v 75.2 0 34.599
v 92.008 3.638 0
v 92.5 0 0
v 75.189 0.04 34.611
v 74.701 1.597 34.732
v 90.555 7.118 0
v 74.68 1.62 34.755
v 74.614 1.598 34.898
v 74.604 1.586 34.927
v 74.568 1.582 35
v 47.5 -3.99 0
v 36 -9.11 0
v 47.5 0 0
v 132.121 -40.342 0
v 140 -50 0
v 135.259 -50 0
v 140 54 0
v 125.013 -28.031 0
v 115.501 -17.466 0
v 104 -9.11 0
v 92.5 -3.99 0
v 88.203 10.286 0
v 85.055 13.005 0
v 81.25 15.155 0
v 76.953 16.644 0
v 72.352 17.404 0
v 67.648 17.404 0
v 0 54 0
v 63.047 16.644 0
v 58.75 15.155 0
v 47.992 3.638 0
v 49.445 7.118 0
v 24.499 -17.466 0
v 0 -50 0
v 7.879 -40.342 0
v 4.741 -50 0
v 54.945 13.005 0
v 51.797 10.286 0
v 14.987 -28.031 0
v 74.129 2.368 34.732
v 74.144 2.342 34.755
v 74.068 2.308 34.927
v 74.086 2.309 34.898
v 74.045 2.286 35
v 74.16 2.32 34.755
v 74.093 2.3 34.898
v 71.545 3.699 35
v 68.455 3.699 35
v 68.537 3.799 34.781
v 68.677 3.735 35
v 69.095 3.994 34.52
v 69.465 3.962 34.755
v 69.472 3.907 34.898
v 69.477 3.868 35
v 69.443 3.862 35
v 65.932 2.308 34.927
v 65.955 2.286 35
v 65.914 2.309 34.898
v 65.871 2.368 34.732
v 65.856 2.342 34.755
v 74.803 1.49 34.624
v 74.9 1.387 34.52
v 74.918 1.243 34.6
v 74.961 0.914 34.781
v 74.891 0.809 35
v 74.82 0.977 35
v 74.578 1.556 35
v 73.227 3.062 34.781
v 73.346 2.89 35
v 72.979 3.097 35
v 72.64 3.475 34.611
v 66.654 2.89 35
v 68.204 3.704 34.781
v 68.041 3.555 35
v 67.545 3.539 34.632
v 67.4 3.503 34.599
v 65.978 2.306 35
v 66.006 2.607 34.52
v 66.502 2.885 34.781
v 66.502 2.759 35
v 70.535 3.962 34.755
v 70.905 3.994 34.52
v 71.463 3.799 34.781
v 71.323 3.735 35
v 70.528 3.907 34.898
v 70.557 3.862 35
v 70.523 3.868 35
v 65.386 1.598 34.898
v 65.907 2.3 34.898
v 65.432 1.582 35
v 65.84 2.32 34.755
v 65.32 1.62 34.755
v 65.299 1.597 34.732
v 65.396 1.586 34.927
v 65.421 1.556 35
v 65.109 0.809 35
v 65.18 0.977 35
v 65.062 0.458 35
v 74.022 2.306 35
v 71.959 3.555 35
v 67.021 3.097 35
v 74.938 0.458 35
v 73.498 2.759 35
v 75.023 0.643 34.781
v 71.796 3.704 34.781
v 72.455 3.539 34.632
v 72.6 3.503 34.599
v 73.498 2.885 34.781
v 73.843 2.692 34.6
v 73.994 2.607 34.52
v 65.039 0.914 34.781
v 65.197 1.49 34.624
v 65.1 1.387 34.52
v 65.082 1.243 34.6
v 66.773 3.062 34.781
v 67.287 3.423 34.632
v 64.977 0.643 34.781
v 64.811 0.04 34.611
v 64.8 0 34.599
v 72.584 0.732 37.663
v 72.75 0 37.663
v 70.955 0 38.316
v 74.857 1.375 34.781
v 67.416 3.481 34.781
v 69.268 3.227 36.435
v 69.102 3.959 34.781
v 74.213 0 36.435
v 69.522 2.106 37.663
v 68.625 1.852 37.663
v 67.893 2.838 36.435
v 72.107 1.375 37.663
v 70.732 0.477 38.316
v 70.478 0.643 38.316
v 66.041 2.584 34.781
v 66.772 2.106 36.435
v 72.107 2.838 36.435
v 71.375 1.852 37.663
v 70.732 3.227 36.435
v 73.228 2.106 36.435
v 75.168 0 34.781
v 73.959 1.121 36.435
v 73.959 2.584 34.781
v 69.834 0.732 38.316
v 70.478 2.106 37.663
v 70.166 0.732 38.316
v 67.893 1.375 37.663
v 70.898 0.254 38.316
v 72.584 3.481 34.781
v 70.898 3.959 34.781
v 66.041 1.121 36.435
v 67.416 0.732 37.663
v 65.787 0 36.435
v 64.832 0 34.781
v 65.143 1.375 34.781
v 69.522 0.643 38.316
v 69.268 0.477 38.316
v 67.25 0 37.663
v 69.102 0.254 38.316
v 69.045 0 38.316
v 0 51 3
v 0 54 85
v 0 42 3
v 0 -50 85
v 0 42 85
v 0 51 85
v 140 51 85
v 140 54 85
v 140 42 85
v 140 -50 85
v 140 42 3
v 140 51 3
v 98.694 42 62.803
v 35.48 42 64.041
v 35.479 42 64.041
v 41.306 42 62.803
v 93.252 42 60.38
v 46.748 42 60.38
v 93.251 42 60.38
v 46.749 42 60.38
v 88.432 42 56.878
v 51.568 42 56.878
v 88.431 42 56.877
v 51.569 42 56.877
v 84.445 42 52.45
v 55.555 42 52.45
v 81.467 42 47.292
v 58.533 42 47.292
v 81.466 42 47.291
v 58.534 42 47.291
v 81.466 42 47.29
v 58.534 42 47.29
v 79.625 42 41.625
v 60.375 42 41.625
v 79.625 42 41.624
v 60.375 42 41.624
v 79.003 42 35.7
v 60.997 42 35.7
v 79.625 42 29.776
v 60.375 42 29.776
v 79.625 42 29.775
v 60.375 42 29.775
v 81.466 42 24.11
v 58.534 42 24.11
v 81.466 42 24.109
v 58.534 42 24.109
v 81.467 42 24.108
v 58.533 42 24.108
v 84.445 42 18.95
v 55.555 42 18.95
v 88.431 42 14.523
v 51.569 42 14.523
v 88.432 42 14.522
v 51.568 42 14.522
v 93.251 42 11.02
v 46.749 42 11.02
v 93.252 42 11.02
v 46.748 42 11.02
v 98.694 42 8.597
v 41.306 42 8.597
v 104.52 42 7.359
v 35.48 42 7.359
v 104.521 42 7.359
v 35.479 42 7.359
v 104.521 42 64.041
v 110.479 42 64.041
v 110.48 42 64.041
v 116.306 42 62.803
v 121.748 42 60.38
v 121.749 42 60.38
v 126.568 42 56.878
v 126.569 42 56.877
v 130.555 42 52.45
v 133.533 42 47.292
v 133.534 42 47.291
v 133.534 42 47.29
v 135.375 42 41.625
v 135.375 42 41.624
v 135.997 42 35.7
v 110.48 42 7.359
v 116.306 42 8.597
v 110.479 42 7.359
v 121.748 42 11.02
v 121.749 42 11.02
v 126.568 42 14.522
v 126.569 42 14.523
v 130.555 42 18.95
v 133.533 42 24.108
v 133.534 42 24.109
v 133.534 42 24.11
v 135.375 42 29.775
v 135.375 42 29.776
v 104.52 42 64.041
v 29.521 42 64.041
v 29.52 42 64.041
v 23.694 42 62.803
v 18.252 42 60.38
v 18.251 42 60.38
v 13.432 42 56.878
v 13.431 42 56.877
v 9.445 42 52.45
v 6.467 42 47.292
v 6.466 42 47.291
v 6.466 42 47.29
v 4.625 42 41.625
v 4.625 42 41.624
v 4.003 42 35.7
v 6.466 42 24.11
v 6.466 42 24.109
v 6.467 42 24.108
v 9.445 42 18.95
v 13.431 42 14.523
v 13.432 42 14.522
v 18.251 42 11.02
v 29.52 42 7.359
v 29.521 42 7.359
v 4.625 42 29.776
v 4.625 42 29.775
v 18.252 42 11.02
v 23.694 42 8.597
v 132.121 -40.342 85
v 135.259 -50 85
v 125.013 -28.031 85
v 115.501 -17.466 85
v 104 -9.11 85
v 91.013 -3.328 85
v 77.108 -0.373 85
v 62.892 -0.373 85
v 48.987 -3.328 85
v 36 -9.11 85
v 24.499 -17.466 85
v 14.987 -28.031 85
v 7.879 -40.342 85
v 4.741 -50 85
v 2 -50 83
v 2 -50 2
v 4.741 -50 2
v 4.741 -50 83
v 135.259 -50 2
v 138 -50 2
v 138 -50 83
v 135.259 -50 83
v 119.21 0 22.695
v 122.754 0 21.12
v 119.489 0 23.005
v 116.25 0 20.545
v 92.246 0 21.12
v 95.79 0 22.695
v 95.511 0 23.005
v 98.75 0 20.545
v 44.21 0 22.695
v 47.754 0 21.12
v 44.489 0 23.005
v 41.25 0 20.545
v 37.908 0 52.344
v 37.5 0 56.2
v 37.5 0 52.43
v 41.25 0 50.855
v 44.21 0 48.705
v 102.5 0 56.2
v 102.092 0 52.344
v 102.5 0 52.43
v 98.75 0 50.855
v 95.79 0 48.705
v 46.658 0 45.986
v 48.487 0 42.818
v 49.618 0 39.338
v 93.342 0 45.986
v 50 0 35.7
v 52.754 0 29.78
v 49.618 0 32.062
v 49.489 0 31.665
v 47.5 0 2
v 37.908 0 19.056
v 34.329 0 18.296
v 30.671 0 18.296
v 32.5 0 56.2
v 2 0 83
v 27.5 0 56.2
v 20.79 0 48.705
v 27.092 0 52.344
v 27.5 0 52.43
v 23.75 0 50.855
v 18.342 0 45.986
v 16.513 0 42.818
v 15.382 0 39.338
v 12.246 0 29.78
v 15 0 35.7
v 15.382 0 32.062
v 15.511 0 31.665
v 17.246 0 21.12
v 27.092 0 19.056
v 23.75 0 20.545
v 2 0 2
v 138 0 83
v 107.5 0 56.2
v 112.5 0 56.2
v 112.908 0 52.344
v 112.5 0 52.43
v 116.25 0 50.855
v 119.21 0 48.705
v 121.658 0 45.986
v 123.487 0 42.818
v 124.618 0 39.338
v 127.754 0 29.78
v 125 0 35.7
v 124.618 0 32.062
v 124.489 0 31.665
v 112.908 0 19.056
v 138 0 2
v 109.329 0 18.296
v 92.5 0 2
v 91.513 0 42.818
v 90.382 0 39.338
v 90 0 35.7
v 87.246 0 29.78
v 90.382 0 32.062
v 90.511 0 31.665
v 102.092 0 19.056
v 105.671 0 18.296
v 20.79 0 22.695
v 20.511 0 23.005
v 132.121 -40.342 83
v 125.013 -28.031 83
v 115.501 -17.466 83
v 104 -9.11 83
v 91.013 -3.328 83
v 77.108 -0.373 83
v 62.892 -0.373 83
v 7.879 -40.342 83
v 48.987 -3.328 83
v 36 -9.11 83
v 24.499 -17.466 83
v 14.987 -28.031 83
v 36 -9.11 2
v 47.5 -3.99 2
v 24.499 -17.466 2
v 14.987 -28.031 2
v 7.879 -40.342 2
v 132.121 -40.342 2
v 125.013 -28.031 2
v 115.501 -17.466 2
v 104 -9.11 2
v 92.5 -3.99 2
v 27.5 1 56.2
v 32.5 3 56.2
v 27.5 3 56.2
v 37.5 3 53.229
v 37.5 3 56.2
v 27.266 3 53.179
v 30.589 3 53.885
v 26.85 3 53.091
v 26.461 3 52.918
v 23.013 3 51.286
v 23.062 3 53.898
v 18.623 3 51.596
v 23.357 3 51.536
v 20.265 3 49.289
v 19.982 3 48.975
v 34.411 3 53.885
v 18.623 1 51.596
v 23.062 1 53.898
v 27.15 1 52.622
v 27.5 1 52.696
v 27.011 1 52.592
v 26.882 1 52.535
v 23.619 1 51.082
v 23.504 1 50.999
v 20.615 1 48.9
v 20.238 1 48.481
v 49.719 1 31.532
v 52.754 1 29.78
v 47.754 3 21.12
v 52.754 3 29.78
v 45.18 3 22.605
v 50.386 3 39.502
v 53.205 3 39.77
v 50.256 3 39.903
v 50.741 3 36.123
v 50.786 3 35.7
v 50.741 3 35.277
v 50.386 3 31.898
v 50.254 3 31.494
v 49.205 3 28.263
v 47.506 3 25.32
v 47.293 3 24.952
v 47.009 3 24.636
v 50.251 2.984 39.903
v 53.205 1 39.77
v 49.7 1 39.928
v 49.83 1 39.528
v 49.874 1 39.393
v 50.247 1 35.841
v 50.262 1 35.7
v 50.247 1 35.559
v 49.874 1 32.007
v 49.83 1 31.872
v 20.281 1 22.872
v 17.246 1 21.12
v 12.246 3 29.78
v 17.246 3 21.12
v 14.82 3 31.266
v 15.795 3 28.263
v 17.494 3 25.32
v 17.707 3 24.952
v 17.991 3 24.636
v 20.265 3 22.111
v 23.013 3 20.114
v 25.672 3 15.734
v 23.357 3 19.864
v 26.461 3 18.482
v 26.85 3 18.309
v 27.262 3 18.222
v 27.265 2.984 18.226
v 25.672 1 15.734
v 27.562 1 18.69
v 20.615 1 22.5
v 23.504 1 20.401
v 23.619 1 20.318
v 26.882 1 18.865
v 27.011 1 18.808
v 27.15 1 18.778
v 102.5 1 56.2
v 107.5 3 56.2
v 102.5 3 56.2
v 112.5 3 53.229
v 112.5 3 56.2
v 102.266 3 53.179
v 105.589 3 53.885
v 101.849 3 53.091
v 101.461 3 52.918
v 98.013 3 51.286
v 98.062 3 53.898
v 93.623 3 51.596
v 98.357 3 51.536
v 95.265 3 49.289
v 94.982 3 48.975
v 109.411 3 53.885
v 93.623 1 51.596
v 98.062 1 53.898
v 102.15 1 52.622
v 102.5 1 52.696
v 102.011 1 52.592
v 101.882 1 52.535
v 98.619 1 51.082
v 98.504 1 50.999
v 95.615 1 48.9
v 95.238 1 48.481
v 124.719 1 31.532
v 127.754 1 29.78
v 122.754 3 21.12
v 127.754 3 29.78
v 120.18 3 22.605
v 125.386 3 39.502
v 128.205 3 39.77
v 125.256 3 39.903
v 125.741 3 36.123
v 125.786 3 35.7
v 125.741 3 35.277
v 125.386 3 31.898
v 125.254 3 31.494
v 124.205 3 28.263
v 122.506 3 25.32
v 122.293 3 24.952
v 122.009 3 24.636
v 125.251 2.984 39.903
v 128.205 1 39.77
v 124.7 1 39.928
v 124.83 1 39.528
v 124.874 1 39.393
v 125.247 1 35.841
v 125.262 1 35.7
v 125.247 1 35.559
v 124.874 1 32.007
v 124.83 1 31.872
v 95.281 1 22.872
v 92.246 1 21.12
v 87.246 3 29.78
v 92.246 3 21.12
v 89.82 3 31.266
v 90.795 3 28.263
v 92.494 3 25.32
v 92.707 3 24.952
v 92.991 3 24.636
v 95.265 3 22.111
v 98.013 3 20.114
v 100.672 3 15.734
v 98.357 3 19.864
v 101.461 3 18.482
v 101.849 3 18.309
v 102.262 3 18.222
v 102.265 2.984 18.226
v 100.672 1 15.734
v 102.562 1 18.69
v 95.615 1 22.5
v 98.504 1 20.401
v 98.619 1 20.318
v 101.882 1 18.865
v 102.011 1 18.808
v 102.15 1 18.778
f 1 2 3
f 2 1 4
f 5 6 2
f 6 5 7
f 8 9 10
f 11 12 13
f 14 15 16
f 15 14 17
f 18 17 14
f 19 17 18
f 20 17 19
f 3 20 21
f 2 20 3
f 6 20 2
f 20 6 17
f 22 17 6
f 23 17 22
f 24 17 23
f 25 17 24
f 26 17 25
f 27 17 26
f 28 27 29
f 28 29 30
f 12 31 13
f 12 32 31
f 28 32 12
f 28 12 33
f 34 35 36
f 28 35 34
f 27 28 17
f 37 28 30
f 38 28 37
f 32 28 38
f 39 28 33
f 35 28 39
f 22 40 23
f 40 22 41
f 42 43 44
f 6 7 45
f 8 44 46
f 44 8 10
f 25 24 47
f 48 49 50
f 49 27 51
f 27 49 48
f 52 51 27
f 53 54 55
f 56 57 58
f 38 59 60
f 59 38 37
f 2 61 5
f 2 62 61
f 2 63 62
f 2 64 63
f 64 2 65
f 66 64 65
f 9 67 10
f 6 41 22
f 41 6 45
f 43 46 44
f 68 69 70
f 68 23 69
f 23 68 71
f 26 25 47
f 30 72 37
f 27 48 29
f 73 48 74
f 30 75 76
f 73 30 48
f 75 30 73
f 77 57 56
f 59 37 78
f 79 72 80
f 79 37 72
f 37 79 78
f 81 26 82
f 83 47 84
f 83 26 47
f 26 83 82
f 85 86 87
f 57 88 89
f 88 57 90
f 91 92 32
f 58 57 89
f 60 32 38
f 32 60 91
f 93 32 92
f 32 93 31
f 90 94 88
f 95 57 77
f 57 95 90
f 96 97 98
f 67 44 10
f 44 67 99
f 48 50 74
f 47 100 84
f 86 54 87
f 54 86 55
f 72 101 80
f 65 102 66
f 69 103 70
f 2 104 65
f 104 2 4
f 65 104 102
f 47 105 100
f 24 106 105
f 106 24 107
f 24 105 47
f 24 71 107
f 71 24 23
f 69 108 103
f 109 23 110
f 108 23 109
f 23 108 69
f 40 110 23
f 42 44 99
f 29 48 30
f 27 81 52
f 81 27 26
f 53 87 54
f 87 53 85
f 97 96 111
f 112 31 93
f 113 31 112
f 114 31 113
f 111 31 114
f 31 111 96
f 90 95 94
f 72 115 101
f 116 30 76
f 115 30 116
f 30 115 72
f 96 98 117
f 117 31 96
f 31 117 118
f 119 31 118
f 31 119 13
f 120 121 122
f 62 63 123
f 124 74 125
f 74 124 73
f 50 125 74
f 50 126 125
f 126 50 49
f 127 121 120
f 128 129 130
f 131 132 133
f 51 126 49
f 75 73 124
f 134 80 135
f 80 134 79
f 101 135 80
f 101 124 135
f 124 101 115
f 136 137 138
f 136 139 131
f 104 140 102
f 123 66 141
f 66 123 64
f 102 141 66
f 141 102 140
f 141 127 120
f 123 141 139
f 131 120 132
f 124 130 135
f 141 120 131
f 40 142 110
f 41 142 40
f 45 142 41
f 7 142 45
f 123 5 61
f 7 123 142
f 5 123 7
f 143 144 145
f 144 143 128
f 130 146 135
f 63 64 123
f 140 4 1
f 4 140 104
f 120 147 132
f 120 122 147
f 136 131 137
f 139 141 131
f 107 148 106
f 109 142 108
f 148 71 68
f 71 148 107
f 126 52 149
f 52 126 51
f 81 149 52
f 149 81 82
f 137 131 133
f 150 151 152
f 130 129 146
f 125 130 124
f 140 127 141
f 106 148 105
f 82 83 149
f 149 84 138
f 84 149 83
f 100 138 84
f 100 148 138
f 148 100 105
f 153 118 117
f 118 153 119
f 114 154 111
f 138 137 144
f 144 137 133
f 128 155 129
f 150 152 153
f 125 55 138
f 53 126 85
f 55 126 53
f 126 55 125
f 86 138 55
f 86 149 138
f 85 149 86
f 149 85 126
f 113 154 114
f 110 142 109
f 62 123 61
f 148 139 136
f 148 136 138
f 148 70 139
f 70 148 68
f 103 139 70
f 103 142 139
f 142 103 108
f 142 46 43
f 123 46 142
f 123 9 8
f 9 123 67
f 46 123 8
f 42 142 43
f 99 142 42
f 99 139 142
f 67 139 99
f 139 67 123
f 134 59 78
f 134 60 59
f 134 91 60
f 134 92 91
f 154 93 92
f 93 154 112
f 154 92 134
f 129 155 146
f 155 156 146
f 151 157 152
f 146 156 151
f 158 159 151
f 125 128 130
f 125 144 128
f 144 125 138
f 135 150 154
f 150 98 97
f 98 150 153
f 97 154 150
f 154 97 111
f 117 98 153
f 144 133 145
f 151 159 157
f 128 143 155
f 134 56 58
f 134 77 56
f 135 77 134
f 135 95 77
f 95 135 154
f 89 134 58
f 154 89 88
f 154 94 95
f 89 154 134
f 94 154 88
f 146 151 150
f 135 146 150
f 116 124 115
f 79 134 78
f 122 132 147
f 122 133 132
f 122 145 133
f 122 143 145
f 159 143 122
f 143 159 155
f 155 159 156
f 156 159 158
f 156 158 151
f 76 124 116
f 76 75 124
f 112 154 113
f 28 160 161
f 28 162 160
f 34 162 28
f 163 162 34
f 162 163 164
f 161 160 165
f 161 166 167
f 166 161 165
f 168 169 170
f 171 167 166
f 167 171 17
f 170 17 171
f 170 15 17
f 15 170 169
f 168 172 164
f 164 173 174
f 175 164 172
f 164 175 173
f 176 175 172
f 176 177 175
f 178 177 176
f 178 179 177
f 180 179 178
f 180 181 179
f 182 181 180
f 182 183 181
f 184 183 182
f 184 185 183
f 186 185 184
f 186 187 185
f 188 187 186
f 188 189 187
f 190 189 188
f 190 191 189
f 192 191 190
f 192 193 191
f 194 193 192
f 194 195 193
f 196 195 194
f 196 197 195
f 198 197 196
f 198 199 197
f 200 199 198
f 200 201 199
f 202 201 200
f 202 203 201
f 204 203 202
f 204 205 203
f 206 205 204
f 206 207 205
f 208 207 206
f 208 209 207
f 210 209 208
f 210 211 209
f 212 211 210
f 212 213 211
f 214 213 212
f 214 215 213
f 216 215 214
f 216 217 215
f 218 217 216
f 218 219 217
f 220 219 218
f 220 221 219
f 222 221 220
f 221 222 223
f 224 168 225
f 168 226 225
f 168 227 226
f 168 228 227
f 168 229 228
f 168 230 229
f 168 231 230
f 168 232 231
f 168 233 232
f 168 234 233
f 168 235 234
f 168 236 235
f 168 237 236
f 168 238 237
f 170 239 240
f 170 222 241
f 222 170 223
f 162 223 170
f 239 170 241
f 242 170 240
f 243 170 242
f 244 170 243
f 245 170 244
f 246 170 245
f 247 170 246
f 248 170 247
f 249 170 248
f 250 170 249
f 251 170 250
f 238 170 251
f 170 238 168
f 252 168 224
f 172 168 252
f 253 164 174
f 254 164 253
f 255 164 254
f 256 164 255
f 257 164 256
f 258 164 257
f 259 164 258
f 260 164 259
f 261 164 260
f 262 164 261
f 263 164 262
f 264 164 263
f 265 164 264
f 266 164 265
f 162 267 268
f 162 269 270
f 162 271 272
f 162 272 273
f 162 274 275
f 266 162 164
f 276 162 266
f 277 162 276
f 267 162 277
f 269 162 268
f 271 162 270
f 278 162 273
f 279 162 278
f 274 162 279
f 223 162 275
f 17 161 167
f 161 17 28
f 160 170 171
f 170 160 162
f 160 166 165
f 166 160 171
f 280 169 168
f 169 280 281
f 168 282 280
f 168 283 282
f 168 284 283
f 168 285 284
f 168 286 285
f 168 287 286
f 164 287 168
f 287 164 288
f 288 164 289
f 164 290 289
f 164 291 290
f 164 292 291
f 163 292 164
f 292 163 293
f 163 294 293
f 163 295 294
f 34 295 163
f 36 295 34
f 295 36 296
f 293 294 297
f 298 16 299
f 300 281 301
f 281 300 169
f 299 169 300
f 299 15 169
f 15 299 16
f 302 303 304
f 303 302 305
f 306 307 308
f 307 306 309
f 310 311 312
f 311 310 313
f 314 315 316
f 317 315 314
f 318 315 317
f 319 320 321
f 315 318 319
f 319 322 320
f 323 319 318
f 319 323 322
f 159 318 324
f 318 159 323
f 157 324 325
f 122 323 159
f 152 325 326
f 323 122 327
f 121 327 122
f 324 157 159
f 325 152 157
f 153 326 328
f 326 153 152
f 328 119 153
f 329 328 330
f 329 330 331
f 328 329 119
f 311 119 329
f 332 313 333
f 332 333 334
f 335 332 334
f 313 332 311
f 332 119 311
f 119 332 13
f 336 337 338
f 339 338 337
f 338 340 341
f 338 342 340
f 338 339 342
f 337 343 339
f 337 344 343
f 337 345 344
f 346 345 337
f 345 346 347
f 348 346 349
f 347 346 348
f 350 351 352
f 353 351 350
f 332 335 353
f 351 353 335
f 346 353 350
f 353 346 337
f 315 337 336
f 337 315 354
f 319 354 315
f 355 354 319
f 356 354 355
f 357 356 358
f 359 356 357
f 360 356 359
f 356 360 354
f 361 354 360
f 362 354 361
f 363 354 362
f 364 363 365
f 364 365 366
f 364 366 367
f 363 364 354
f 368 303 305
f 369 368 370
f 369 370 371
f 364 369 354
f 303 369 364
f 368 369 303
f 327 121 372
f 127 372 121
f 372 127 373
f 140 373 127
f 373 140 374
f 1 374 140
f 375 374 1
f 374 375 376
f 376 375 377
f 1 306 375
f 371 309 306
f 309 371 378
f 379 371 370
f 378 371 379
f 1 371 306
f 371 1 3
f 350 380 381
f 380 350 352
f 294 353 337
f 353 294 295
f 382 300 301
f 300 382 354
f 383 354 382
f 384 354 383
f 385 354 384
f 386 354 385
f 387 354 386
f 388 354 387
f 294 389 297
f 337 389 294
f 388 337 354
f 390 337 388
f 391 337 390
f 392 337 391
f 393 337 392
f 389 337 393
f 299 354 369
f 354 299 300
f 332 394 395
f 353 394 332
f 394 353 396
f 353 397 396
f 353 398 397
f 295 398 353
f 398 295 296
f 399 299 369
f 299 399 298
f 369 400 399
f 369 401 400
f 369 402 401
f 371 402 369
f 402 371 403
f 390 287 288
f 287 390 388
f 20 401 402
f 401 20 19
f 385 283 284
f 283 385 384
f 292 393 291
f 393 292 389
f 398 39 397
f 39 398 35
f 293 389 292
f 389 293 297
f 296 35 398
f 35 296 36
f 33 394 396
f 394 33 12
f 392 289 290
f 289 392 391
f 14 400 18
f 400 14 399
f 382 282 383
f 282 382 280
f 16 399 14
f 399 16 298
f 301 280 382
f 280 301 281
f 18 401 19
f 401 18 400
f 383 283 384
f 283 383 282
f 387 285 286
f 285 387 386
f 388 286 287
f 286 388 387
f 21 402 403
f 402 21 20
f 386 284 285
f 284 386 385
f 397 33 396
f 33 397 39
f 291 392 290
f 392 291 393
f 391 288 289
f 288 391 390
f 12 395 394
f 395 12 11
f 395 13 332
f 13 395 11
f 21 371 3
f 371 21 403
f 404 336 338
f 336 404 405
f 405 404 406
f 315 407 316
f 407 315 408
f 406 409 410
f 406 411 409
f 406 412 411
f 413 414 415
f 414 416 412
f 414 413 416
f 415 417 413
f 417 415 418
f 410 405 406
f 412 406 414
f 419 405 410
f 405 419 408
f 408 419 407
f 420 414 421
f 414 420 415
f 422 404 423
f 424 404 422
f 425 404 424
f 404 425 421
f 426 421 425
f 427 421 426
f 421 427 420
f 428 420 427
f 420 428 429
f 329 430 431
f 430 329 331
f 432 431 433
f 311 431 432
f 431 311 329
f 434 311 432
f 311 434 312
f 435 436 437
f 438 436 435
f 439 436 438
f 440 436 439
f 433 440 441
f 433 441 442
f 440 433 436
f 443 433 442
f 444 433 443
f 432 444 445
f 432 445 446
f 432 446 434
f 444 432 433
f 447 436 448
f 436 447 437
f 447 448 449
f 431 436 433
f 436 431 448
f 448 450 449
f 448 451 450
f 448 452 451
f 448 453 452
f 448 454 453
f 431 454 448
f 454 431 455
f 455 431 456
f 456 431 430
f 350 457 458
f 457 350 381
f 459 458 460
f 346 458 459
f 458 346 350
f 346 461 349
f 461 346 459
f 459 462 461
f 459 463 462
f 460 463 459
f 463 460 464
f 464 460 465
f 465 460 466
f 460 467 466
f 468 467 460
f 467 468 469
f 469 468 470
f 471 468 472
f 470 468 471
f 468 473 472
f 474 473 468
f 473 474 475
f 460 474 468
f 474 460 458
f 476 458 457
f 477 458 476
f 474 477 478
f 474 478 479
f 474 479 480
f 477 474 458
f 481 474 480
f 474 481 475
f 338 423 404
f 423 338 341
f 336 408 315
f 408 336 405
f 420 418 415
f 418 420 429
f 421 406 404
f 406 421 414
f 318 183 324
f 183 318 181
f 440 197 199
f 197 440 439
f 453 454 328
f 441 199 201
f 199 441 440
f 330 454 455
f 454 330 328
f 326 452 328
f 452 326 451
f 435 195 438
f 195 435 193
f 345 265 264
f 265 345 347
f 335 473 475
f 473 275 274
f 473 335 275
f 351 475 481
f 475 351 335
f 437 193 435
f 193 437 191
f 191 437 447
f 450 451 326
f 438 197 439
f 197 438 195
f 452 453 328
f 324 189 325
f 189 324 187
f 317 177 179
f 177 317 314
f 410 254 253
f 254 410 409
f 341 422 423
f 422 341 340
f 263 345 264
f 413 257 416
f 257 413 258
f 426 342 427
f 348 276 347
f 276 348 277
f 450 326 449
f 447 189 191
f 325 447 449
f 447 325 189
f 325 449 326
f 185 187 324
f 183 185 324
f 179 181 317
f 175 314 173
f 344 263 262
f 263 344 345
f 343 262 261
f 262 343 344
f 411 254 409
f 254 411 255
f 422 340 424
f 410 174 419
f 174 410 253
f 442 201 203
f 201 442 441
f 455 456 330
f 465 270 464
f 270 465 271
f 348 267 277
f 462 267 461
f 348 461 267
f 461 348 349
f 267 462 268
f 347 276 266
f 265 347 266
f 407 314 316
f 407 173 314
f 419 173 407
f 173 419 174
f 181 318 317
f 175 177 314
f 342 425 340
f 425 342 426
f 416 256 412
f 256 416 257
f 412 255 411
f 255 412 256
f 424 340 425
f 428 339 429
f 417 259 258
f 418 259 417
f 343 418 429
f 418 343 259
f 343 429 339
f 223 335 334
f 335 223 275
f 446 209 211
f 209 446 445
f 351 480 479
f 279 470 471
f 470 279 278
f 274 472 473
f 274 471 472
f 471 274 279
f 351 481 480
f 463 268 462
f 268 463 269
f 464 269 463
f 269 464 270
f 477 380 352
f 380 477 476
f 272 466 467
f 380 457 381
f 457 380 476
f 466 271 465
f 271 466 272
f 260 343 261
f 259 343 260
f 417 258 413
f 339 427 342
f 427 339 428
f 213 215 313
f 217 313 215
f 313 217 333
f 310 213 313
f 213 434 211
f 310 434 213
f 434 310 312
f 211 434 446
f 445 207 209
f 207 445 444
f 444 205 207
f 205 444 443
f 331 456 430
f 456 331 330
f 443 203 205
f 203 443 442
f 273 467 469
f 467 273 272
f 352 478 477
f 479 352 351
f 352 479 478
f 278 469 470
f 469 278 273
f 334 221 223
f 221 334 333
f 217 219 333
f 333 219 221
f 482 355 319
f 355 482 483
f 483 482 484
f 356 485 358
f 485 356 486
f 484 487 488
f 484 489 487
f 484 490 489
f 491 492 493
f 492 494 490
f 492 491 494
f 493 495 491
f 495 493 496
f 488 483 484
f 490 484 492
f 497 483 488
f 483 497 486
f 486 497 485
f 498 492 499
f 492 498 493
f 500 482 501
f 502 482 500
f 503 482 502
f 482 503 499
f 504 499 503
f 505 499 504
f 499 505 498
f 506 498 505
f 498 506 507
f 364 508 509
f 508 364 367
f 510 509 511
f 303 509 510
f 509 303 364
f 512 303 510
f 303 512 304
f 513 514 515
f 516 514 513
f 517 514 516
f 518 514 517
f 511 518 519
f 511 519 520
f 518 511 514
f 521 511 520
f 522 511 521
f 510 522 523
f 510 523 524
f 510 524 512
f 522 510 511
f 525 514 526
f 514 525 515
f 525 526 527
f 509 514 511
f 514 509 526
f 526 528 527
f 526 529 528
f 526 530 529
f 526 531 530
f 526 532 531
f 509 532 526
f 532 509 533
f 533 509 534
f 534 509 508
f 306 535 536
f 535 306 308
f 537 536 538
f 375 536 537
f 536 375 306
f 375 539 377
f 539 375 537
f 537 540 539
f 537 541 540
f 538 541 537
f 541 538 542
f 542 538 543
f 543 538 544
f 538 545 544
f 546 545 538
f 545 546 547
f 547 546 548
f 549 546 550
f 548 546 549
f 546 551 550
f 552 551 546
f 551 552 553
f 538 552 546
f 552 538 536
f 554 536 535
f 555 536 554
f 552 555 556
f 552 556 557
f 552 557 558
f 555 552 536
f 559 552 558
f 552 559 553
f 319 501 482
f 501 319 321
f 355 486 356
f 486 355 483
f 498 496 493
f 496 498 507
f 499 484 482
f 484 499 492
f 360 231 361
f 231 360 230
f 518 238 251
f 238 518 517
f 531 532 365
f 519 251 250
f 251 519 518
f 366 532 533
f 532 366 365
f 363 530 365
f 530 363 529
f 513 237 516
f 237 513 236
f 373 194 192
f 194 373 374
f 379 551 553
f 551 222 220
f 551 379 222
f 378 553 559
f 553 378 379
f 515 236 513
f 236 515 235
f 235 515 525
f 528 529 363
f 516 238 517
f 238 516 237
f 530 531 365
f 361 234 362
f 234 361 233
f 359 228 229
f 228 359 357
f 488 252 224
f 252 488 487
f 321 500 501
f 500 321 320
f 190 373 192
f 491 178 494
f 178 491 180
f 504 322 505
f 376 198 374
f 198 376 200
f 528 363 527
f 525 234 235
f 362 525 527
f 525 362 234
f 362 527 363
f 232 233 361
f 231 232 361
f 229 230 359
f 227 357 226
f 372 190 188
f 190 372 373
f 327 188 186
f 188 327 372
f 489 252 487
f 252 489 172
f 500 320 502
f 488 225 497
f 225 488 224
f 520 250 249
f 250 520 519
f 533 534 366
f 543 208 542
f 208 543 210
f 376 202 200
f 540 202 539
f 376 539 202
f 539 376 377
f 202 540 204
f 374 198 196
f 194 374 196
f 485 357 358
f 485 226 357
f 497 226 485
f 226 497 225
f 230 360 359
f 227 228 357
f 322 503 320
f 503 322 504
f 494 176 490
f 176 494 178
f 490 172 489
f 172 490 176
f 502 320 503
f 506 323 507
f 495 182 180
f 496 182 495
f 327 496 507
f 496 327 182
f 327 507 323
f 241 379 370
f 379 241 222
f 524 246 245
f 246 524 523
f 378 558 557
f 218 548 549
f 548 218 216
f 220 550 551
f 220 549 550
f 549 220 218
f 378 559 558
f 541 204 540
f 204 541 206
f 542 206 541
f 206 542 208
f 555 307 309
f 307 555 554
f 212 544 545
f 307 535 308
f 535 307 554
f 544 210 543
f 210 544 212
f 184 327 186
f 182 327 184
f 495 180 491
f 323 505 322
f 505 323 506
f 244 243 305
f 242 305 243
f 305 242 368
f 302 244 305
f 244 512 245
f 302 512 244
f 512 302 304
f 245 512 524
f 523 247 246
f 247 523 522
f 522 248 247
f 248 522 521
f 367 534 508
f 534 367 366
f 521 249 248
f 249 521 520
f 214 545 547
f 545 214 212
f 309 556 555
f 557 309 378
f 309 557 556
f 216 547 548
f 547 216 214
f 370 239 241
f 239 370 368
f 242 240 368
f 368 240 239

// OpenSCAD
/****************************************
 * Generate VR Headset for Mobile Phone *
 ****************************************/

// TODO: Add mechanism to press against the phone screen for the primary trigger.

/*******************************
 *   Adjustable Measurements   *
 *                             *
 * All measurements are in mm. *
 *******************************/

// Overall case size
CaseSize = [140, 42, 85];

// Interpupillary Distance
IPD = 75;

// Diameter of the lenses at the eyes
LensDiameter = 35;

// Diameter of the area of the screen 
// that will be viewed
ViewDiameterAtPhone = 57;

// Percentage of the total case height
// from the bottom that indicates
// where the center of the lenses are.
// (ie. .5 would be exactly in the middle)
LensVerticalOffsetPercentage = .42;

// Width, Thickness, and Height of the 
// protrusions on the lens that latch onto the frame.
LensFlangeDimensions = [10, 2, 3];

// Distance the lens is inset into the frame
LensFlangeInset = 1;

// Number of flanges around the edges of the lens
NumberOfLensFlanges = 3;

// Phone measurements
// Height, Thickness, Width
Phone = [140, 9, 75]; 

// Thickness of the border that holds in the phone.
PhoneHolderThickness = 3;

// Nose Opening measurements
// Width, depth, height
NoseOpening = [45, 35, 40]; 

// Face Guard measurements
FaceGuardDepth = 50;
FaceGuardThickness = 2;

///////////////////////////
// Internal Measurements //
//     DO NOT CHANGE     //
///////////////////////////

// Derived lens measurements
HalfIPD = IPD / 2;
LensRadius = LensDiameter / 2;

CenterLeftLens = [
    CaseSize.x / 2 - HalfIPD, 
    CaseSize.z * LensVerticalOffsetPercentage];
CenterRightLens = [
    CaseSize.x / 2 + HalfIPD, 
    CaseSize.z * LensVerticalOffsetPercentage];
    
LensFlangeOpeningDimensions = [
    LensFlangeDimensions.x,
    LensFlangeDimensions.y + LensFlangeInset,
    LensFlangeDimensions.z
];
    
// Derived nose opening measurements
NoseOpeningRatio = NoseOpening.y/NoseOpening.x;

// Derived phone holder measurements
PhoneHolder = [
    CaseSize.x, 
    Phone.y + PhoneHolderThickness, 
    CaseSize.z];
PhoneHolderInterior = [
    Phone.x, 
    Phone.y, 
    PhoneHolder.z - PhoneHolderThickness];
PhoneWidthOffset = (CaseSize.x - Phone.x) / 2;

// Derived face guard measurements
FaceGuard = [CaseSize.x, FaceGuardDepth, CaseSize.z];
FaceGuardInterior = [
    CaseSize.x - FaceGuardThickness * 2, 
    FaceGuardDepth, 
    CaseSize.z - FaceGuardThickness * 2];
FaceGuardArcRadius = FaceGuardInterior.x / 2;

// Modules
module lens() {
    rotate ([-90, 0, 0]) {
        cylinder(h=CaseSize.y+0.01, 
                 d1=LensDiameter, 
                 d2=ViewDiameterAtPhone);
    }

    for (i = [0:360/NumberOfLensFlanges:360]) {
        rotate([0, i, 0]) {
            // Flange opening
            translate([-(LensFlangeOpeningDimensions.x / 2), 0, LensRadius - LensFlangeOpeningDimensions.z]) {
                cube([
                    LensFlangeOpeningDimensions.x,
                    LensFlangeOpeningDimensions.y,
                    LensFlangeOpeningDimensions.z * 2]);
            }
            // Flange slot
            slotRotation = atan((LensFlangeDimensions.x / 2) / (LensRadius + LensFlangeDimensions.z)) * 2;
            rotate([0, -slotRotation, 0]) {
                translate([-(LensFlangeDimensions.x / 2), LensFlangeInset, (LensRadius) - LensFlangeOpeningDimensions.z]) {
                
                    cube([
                        LensFlangeDimensions.x,
                        LensFlangeDimensions.y,
                        LensFlangeDimensions.z * 2]);
                }
            }
        }
    }
}

// Case
union() {
    // Lens Holder
    difference() {
        cube(CaseSize);

        // Left Lens
        translate([CenterLeftLens.x, 0, CenterLeftLens.y]) {
            lens();
        }
        
        // Right Lens
        translate([CenterRightLens.x, 0, CenterRightLens.y]) {
            lens();
        }
        
        // Nose hole
        translate([CaseSize.x / 2, 0, 0]) {
            scale([1, NoseOpeningRatio, 1]) {
                 union() {
                    cylinder(h=NoseOpening.z - 5, 
                             d1=NoseOpening.x, 
                             d2=10);
                }
                translate([0, 0, NoseOpening.z - 7.1]) {
                    sphere(d=11);
                }
            }
        }
    }

    // Phone Holder
    translate([0, CaseSize.y, 0]) {
        difference() {
            cube(PhoneHolder);
            translate([PhoneWidthOffset, 0, PhoneHolderThickness]) {
                cube(PhoneHolderInterior);
            }
        }
    }
    
    // Face Guard
    translate([0, -FaceGuard.y, 0]) {
        difference() {
            cube(FaceGuard);
            // Hollow out the inside of the face guard
            translate([FaceGuardThickness, 0, FaceGuardThickness]) {
                cube(FaceGuardInterior);
            }
            // Arc at the top and bottom
            translate([FaceGuardArcRadius + FaceGuardThickness, -FaceGuardArcRadius + FaceGuard.y, 0]) {
                cylinder(h=FaceGuard.z, r=FaceGuardArcRadius);
            }
            // Nose Opening Cutout
            translate([(FaceGuard.x / 2) - (NoseOpening.x / 2), 0, 0]) {
                cube([NoseOpening.x, FaceGuard.y, FaceGuardThickness]);
            }
        }
    }
}
